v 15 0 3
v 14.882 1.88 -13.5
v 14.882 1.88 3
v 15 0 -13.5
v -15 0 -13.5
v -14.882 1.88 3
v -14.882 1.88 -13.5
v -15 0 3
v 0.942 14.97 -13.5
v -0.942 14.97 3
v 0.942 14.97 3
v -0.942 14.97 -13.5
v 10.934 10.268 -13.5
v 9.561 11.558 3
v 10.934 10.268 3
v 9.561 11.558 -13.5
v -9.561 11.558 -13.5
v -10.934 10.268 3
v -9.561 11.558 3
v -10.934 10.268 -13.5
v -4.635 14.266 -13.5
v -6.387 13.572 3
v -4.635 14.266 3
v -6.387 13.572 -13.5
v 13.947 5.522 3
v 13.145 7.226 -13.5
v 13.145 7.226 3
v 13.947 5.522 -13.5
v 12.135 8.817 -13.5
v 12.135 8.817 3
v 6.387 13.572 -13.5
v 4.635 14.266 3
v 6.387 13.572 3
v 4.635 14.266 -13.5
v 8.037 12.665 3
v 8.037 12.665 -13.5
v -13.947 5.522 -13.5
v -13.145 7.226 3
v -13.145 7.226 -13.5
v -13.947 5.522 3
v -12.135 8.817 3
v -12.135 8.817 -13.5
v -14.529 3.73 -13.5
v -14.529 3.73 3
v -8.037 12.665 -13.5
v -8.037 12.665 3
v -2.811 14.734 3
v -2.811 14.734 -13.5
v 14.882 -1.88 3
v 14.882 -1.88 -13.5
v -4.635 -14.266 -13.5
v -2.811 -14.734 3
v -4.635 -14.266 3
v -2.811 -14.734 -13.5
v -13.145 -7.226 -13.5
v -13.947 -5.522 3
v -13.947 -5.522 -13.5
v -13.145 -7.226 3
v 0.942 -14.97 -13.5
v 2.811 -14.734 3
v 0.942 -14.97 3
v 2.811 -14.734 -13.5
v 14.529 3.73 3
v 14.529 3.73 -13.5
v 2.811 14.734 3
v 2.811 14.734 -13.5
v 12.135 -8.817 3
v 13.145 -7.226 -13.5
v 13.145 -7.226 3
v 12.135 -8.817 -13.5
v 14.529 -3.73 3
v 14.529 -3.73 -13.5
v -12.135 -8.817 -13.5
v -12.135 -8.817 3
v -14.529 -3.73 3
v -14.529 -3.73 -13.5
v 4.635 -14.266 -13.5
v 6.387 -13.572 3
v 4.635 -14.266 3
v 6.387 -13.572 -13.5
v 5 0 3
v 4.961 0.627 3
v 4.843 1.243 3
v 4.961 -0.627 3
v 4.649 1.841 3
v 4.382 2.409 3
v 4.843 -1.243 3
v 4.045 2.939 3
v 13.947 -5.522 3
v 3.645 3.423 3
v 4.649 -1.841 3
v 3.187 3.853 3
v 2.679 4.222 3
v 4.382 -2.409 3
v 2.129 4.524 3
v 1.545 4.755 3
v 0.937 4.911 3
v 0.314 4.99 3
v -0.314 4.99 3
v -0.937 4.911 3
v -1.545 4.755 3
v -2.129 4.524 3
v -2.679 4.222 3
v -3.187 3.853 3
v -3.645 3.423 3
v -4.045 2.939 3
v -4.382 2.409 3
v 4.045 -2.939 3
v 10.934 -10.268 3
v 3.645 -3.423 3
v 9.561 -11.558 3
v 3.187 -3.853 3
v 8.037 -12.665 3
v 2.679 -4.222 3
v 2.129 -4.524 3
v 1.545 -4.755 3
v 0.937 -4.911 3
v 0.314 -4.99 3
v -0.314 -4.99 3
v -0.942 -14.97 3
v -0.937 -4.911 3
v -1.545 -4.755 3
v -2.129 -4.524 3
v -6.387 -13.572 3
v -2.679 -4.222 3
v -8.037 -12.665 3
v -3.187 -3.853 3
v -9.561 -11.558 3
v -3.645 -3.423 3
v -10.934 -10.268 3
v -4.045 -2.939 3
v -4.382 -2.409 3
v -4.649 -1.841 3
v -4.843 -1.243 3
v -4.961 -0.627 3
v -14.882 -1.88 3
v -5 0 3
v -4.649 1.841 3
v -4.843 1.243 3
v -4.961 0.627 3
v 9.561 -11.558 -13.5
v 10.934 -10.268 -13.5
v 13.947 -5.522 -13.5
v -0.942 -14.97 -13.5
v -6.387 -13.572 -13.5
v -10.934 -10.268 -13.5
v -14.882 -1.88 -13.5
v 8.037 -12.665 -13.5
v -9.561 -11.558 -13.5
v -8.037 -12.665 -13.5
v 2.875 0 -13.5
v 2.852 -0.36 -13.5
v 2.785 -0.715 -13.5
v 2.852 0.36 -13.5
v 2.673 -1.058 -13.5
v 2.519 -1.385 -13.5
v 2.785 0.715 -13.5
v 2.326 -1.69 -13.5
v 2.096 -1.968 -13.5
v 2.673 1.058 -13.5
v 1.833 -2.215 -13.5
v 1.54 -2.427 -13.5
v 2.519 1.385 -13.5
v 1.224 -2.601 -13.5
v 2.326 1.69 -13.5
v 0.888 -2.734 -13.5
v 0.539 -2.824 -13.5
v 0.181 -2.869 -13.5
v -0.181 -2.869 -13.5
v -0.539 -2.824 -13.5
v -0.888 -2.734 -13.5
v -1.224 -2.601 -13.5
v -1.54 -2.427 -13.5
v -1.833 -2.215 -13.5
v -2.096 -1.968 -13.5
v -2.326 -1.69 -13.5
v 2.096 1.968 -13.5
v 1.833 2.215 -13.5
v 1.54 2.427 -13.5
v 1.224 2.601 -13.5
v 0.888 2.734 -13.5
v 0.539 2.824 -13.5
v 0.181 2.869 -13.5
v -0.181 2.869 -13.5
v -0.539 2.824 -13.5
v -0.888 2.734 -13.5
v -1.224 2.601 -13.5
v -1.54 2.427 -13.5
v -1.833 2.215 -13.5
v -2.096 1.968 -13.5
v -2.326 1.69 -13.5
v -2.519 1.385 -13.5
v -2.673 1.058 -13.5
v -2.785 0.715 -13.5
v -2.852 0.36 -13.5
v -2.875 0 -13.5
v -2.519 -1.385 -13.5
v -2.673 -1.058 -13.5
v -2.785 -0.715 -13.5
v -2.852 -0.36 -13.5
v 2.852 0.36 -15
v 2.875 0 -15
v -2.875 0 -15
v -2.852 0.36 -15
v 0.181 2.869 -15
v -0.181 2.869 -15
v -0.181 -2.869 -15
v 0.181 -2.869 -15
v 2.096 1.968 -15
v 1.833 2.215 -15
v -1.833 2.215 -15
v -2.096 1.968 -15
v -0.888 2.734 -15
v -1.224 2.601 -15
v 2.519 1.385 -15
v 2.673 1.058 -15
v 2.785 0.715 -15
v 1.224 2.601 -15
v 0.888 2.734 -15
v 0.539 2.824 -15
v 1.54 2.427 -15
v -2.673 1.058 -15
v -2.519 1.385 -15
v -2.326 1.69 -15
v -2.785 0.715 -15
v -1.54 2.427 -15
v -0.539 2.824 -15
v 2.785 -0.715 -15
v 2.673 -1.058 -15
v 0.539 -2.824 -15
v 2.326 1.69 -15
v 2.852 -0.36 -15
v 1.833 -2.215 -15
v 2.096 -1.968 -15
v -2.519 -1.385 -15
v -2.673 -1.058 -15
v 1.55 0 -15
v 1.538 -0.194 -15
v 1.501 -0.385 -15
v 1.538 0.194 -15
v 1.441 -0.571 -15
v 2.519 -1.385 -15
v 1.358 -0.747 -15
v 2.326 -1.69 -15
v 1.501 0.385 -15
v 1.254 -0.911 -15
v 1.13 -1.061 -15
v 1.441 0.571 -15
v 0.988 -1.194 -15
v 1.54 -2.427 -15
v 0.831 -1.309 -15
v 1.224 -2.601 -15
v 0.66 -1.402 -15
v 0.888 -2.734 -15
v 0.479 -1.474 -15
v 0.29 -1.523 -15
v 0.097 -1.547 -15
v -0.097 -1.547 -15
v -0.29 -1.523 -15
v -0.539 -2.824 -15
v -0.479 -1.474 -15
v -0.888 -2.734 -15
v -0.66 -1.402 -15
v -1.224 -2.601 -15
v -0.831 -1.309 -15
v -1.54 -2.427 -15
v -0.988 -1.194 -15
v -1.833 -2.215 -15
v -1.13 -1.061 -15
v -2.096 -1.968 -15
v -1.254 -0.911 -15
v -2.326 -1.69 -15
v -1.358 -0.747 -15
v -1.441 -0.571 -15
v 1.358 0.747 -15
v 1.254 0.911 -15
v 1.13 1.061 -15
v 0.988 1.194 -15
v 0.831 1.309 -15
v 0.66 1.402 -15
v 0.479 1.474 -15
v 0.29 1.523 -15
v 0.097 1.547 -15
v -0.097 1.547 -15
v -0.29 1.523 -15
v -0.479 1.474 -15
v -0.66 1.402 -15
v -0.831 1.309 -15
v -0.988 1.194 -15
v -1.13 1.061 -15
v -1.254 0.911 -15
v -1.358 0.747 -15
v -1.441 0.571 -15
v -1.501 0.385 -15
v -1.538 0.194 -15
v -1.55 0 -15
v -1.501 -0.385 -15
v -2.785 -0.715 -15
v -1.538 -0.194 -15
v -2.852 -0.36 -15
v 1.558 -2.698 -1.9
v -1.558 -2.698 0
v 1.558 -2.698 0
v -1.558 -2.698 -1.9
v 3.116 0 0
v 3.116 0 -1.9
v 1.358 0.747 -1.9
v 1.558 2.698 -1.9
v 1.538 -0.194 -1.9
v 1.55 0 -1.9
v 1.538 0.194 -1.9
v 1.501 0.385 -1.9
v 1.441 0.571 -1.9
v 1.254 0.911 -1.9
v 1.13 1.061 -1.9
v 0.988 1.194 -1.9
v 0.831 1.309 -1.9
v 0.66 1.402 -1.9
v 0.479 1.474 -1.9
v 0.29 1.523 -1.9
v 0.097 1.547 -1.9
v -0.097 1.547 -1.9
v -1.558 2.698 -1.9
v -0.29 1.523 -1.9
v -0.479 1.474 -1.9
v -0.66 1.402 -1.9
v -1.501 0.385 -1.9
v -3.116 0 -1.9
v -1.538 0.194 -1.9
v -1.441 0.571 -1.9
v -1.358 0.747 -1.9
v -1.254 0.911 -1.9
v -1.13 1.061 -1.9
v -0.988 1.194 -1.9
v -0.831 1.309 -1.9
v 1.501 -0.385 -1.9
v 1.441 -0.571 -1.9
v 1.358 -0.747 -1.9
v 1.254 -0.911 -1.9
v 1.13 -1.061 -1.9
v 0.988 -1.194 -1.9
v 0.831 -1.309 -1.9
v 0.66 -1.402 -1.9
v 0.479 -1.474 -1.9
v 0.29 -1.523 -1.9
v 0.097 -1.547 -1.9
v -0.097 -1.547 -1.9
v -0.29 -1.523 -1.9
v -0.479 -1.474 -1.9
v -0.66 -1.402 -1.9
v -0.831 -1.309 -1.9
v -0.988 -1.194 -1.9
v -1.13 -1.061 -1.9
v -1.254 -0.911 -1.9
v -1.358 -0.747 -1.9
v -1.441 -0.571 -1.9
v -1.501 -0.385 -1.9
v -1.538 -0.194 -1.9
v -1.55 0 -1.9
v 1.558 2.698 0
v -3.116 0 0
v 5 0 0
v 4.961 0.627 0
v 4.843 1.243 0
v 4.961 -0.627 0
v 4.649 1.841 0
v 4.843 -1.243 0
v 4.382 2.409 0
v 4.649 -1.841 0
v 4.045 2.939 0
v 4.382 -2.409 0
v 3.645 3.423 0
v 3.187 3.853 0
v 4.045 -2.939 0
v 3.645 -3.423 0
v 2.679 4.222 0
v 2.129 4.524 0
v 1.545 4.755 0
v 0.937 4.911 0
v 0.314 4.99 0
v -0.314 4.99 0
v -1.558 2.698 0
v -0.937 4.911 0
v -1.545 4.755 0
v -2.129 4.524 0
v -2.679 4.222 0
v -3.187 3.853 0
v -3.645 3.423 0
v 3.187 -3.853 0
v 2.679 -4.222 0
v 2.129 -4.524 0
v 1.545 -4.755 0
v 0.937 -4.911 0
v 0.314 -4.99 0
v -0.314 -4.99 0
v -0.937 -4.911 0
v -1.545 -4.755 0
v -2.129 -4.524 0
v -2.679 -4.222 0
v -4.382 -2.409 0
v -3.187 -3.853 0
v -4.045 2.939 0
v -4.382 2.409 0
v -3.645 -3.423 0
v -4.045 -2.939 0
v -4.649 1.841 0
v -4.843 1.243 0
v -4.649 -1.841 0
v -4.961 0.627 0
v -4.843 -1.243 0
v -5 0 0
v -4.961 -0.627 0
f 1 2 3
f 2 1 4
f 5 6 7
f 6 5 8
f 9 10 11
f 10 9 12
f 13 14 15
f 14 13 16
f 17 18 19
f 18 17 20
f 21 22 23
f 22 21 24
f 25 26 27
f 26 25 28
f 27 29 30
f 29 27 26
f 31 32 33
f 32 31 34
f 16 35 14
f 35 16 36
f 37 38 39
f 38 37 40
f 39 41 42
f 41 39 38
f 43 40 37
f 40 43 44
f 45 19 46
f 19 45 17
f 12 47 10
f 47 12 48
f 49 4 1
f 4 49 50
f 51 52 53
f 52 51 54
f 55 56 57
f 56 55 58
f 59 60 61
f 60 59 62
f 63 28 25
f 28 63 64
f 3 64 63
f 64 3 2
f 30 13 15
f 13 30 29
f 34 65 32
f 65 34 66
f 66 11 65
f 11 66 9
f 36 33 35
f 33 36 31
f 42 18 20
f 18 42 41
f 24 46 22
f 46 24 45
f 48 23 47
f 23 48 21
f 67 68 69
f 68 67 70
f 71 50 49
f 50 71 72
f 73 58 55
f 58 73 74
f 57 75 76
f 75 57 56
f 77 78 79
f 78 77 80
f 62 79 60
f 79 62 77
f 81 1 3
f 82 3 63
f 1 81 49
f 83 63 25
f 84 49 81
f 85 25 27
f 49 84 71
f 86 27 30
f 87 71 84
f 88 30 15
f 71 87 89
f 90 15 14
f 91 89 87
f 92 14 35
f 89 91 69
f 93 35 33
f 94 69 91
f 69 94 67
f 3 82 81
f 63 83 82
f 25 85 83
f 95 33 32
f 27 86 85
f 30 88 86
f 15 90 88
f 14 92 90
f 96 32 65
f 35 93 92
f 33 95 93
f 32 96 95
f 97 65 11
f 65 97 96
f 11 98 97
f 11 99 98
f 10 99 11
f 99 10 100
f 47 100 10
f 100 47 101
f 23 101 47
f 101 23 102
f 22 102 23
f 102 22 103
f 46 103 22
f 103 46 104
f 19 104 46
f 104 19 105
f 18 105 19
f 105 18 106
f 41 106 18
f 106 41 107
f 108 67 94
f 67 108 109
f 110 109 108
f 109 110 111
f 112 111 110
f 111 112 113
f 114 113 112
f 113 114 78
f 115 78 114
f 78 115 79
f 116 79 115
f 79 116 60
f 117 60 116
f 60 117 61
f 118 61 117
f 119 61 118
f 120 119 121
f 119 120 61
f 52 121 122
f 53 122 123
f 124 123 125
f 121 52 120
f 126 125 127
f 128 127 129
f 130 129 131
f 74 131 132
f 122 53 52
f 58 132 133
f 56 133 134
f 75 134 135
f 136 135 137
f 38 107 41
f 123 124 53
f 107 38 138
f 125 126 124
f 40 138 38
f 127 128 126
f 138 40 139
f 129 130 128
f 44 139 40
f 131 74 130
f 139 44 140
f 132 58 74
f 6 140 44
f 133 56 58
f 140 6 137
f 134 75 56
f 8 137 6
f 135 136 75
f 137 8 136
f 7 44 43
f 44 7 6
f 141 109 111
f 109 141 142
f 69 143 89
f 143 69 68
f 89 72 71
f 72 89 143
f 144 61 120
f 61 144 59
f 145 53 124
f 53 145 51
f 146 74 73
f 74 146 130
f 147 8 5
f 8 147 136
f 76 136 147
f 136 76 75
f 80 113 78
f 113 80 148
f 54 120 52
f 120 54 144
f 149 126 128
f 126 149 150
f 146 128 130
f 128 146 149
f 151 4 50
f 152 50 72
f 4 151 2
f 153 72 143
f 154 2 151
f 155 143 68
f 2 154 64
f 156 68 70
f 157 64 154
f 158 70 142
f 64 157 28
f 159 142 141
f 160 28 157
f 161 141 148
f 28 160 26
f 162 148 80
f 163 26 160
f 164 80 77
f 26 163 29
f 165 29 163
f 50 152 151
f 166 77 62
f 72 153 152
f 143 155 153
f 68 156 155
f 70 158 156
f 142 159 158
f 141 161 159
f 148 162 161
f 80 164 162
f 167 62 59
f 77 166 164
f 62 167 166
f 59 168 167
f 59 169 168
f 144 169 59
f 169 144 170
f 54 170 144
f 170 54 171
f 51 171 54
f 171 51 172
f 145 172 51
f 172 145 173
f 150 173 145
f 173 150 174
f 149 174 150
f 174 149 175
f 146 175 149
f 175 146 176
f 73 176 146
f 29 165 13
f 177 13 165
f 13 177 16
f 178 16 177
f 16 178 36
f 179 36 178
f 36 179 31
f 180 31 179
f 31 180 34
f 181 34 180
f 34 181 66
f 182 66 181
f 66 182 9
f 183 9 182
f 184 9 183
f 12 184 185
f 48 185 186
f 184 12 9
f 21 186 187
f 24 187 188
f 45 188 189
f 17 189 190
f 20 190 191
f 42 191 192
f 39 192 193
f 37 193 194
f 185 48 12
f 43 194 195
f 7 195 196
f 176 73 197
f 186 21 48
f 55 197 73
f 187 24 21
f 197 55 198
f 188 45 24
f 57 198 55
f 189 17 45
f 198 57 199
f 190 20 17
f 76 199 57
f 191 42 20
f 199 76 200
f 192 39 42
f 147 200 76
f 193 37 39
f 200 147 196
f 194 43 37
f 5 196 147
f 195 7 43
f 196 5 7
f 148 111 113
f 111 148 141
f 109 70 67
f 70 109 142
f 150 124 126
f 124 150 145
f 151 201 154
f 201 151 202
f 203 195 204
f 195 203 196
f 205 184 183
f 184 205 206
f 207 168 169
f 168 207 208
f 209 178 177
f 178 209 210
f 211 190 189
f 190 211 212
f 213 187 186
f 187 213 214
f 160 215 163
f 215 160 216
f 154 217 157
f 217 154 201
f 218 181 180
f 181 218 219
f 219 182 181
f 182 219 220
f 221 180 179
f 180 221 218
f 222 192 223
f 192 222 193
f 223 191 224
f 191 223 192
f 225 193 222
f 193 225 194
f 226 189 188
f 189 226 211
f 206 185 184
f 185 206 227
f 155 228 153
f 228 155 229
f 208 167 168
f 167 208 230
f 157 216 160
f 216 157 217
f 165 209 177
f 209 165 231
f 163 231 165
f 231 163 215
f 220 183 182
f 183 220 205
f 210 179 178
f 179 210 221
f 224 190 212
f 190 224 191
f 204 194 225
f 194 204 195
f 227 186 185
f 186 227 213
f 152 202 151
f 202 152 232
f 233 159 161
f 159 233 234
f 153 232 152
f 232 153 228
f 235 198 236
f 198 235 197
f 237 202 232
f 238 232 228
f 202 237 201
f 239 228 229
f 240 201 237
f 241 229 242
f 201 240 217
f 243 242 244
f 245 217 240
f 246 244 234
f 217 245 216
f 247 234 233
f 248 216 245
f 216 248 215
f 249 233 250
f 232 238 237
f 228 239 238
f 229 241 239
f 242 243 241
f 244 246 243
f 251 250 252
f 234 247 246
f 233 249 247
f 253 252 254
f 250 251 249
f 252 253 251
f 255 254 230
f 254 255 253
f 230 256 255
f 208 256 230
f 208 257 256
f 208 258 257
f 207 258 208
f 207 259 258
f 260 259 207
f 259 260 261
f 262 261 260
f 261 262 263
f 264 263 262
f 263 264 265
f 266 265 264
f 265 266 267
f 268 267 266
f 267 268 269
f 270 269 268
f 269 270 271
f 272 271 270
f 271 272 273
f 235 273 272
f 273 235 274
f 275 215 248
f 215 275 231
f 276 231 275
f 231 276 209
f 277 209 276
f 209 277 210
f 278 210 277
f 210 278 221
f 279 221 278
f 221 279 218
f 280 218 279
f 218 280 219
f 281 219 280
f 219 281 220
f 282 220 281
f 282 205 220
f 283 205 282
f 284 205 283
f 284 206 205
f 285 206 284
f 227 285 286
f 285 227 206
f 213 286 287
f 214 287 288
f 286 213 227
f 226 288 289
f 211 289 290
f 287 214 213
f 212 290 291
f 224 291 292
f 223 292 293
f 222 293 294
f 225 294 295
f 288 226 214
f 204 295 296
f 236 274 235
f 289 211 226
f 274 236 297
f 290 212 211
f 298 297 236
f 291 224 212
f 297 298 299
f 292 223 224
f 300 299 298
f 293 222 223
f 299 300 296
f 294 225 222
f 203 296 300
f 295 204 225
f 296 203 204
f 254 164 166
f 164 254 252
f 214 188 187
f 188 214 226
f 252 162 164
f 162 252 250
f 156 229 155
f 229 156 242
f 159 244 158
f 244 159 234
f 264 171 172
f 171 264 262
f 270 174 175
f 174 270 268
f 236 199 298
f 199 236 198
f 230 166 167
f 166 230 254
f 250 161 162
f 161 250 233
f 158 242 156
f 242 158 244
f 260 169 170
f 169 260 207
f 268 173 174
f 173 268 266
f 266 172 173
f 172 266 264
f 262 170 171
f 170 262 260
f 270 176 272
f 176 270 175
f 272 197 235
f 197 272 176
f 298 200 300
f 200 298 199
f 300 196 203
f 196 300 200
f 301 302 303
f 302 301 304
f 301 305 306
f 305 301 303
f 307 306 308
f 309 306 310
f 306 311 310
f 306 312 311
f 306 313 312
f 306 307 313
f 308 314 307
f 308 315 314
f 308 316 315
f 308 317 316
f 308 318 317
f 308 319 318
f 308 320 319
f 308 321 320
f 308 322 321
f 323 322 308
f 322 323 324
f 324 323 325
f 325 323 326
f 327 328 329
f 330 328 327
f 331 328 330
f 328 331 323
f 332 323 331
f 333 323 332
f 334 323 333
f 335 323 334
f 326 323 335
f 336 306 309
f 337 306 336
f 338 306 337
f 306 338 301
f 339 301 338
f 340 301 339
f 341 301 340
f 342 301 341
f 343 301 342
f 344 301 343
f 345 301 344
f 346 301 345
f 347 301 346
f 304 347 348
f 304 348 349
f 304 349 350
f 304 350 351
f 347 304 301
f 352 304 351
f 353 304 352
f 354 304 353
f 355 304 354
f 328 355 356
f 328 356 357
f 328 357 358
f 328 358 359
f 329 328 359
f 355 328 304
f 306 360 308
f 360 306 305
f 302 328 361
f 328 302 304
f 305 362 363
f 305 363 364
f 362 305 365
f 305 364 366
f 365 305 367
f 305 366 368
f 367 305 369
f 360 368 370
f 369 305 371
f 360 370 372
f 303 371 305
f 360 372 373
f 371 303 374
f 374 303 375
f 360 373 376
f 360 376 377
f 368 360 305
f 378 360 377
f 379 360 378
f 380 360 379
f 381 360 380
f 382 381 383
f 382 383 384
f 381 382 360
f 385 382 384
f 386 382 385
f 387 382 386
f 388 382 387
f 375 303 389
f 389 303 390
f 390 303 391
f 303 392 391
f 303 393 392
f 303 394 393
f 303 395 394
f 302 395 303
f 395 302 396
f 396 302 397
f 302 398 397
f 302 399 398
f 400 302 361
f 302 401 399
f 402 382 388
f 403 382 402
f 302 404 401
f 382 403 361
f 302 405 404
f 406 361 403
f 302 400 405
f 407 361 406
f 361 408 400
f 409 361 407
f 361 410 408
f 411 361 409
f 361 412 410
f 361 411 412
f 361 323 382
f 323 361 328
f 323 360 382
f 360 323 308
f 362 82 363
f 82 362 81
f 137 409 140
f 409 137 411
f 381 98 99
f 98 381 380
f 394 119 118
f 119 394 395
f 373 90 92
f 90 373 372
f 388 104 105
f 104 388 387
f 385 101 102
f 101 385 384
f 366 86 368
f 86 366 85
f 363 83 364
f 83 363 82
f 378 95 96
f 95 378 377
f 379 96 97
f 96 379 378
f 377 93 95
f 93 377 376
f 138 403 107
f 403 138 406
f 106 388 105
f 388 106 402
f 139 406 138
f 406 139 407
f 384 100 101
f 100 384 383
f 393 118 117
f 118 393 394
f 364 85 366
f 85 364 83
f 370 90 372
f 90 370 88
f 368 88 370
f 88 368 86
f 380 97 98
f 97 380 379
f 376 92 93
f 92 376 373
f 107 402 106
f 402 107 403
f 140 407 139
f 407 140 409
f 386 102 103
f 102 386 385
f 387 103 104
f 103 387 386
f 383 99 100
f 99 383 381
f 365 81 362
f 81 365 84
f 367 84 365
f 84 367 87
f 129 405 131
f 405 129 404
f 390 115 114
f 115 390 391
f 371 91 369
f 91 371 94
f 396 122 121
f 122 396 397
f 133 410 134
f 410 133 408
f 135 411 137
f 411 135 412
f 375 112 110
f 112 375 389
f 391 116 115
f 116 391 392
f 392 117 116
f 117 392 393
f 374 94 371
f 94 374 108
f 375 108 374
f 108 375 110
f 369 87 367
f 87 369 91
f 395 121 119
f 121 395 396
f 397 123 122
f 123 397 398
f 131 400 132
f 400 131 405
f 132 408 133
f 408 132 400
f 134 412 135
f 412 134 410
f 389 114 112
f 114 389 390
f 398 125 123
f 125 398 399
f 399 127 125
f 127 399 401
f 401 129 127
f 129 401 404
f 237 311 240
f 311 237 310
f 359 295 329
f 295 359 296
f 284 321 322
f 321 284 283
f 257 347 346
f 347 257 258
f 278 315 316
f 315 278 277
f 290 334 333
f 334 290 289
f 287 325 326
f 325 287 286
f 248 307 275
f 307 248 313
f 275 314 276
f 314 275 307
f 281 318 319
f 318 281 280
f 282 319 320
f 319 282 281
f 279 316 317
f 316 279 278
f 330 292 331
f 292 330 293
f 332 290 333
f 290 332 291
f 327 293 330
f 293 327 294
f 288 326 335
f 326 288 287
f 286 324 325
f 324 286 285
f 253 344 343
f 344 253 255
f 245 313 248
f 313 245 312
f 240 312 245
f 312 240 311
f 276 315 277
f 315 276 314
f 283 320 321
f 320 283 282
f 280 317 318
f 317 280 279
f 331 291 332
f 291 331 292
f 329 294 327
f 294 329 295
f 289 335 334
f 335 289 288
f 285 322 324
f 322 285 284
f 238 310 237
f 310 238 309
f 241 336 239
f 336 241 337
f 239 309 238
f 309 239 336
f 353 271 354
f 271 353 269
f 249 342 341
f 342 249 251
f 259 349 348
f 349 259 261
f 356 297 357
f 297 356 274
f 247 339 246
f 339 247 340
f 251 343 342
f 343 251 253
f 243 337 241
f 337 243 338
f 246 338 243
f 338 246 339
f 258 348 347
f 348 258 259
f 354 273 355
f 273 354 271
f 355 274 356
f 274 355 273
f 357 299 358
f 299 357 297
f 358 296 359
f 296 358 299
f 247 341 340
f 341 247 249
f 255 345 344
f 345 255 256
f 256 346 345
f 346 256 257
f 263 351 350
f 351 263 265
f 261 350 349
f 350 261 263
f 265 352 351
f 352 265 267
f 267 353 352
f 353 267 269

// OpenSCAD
$fn = 50;


difference() {
	union() {
		translate(v = [0, 0, -13.5000000000]) {
			cylinder(h = 16.5000000000, r = 15.0000000000);
		}
		#translate(v = [0, 0, -15.0000000000]) {
			cylinder(h = 15, r = 2.8750000000);
		}
	}
	union() {
		translate(v = [0, 0, 0]) {
			rotate(a = [0, 0, 0]) {
				difference() {
					union() {
						translate(v = [0, 0, -1.9000000000]) {
							linear_extrude(height = 1.9000000000) {
								polygon(points = [[3.1158000000, 0.0000000000], [1.5579000000, 2.6983619531], [-1.5579000000, 2.6983619531], [-3.1158000000, 0.0000000000], [-1.5579000000, -2.6983619531], [1.5579000000, -2.6983619531]]);
							}
						}
					}
					union();
				}
			}
		}
		#cylinder(h = 3, r = 5.0000000000);
		#translate(v = [0, 0, -100.0000000000]) {
			cylinder(h = 200, r = 1.5500000000);
		}
	}
}
